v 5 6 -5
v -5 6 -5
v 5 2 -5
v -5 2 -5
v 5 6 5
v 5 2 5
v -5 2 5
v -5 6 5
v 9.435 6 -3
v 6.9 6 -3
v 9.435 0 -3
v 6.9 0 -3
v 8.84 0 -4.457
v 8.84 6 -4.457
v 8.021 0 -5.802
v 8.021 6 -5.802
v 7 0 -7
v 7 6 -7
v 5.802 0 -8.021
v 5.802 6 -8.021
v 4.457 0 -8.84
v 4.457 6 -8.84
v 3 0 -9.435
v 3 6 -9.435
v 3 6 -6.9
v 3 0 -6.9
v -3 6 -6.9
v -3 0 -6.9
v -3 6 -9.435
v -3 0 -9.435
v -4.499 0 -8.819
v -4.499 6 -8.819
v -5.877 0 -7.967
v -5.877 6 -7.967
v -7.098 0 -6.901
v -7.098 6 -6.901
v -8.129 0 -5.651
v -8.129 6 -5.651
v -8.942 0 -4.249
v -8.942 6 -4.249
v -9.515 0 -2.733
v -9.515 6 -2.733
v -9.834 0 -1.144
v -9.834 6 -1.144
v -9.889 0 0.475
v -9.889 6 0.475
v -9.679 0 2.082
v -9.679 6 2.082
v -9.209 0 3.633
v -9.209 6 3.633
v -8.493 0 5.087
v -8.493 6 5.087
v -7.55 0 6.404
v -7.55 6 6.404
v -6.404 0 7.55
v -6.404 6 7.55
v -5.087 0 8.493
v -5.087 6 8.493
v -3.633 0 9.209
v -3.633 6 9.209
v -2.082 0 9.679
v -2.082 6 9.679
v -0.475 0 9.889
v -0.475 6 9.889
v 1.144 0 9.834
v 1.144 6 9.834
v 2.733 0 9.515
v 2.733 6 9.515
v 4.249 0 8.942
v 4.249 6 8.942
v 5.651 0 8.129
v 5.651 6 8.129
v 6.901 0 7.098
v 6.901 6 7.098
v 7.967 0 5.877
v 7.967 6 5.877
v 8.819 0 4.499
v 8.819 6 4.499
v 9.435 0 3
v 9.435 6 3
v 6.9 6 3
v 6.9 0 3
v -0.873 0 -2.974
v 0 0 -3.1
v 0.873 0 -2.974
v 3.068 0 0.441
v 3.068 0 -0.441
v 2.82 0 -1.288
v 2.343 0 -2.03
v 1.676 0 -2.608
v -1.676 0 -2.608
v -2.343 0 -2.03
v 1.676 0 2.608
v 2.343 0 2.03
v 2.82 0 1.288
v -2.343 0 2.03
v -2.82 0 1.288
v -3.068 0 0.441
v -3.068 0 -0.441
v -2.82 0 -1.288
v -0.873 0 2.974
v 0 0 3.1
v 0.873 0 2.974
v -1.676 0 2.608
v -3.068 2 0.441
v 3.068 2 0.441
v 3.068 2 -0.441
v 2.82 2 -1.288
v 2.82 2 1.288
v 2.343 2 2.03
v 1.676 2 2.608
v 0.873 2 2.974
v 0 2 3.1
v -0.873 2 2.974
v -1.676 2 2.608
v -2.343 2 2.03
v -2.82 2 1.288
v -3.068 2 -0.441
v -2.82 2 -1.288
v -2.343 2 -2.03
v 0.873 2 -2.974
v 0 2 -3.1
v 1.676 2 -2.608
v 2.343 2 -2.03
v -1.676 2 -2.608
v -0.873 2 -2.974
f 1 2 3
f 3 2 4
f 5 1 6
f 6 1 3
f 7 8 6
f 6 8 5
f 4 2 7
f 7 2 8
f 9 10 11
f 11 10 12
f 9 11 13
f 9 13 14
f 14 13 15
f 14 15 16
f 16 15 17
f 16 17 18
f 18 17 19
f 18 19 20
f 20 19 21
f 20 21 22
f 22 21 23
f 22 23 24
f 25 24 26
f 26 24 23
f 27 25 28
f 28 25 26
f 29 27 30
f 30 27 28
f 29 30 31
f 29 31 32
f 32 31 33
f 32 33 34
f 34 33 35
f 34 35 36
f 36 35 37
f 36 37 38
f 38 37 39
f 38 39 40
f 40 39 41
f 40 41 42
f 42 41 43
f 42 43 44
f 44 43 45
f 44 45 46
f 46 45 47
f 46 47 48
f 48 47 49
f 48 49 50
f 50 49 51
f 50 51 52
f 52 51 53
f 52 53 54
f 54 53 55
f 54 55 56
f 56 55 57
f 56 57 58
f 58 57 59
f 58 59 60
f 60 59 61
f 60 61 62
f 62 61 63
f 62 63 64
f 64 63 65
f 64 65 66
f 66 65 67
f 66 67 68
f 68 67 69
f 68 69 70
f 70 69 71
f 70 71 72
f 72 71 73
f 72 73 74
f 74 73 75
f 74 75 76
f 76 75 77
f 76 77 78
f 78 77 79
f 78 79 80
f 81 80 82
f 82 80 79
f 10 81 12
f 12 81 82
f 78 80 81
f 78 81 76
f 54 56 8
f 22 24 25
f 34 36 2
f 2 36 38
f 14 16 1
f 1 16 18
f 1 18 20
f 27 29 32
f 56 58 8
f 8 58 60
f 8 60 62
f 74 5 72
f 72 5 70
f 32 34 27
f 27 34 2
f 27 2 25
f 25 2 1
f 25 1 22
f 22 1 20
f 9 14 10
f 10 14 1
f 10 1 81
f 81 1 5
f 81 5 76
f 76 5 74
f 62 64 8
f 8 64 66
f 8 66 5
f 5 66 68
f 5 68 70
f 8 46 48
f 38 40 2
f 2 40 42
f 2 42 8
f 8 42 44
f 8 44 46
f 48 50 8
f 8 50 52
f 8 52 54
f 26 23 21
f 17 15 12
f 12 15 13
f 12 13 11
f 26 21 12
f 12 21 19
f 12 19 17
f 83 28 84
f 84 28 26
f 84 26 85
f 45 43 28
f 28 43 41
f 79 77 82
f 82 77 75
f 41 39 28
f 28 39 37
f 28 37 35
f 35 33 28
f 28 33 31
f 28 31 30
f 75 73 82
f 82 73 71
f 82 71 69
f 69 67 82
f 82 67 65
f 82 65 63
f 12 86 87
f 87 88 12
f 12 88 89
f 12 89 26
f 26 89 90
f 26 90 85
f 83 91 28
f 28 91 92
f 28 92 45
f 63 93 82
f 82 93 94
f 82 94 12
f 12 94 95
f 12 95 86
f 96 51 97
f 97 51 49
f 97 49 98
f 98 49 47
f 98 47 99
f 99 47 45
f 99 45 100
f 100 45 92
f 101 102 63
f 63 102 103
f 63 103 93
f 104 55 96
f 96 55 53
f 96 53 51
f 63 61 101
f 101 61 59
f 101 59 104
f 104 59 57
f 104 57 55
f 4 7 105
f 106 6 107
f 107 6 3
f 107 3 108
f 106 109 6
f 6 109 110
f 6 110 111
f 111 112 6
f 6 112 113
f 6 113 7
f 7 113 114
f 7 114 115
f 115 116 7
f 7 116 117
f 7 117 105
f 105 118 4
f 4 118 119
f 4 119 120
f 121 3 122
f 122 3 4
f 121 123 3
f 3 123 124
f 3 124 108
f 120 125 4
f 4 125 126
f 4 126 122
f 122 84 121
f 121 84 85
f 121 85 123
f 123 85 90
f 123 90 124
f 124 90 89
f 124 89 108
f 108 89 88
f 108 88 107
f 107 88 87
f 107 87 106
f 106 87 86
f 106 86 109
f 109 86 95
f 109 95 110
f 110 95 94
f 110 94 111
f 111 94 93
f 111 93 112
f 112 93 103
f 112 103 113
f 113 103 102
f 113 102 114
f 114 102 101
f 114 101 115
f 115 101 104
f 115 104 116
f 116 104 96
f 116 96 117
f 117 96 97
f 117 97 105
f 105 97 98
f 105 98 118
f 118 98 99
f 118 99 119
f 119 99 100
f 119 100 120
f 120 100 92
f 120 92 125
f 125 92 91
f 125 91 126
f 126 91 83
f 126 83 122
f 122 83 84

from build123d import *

# Parameters (mm, degrees)
SKETCH1_W           = 10
SKETCH1_H           = 10
BOSS_EXTRUDE1_DEPTH = 6
SKETCH3_W           = 10
SKETCH3_H           = 10
SKETCH3_R           = 3.1
BOSS_EXTRUDE2_DEPTH = 2


with BuildPart() as part:
    # Sketch1 → Boss-Extrude1 (new body)
    with BuildSketch(Plane(origin=(0, 0, 0), x_dir=(1, 0, 0), z_dir=(0, 1, 0))):
        with BuildLine():
            Line((6.9, -3), (6.9, 3))
            Line((6.9, 3), (9.434511116, 3))
            ThreePointArc((9.434511116, 3), (7.000357134, 7.000357134), (3, 9.434511116))
            Line((3, 9.434511116), (3, 6.9))
            Line((3, 6.9), (-3, 6.9))
            Line((-3, 6.9), (-3, 9.434511116))
            ThreePointArc((-3, 9.434511116), (-7.000357134, -7.000357134), (9.434511116, -3))
            Line((9.434511116, -3), (6.9, -3))
        make_face()
        Rectangle(SKETCH1_W, SKETCH1_H, mode=Mode.SUBTRACT)
    extrude(amount=BOSS_EXTRUDE1_DEPTH)

    # Sketch3 → Boss-Extrude2 (add)
    with BuildSketch(Plane.XZ):
        Rectangle(SKETCH3_W, SKETCH3_H)
        with Locations(Location((0, 0, 0), (0, 0, 270))):
            Circle(SKETCH3_R, mode=Mode.SUBTRACT)
    extrude(amount=-BOSS_EXTRUDE2_DEPTH)


solid = part.part
